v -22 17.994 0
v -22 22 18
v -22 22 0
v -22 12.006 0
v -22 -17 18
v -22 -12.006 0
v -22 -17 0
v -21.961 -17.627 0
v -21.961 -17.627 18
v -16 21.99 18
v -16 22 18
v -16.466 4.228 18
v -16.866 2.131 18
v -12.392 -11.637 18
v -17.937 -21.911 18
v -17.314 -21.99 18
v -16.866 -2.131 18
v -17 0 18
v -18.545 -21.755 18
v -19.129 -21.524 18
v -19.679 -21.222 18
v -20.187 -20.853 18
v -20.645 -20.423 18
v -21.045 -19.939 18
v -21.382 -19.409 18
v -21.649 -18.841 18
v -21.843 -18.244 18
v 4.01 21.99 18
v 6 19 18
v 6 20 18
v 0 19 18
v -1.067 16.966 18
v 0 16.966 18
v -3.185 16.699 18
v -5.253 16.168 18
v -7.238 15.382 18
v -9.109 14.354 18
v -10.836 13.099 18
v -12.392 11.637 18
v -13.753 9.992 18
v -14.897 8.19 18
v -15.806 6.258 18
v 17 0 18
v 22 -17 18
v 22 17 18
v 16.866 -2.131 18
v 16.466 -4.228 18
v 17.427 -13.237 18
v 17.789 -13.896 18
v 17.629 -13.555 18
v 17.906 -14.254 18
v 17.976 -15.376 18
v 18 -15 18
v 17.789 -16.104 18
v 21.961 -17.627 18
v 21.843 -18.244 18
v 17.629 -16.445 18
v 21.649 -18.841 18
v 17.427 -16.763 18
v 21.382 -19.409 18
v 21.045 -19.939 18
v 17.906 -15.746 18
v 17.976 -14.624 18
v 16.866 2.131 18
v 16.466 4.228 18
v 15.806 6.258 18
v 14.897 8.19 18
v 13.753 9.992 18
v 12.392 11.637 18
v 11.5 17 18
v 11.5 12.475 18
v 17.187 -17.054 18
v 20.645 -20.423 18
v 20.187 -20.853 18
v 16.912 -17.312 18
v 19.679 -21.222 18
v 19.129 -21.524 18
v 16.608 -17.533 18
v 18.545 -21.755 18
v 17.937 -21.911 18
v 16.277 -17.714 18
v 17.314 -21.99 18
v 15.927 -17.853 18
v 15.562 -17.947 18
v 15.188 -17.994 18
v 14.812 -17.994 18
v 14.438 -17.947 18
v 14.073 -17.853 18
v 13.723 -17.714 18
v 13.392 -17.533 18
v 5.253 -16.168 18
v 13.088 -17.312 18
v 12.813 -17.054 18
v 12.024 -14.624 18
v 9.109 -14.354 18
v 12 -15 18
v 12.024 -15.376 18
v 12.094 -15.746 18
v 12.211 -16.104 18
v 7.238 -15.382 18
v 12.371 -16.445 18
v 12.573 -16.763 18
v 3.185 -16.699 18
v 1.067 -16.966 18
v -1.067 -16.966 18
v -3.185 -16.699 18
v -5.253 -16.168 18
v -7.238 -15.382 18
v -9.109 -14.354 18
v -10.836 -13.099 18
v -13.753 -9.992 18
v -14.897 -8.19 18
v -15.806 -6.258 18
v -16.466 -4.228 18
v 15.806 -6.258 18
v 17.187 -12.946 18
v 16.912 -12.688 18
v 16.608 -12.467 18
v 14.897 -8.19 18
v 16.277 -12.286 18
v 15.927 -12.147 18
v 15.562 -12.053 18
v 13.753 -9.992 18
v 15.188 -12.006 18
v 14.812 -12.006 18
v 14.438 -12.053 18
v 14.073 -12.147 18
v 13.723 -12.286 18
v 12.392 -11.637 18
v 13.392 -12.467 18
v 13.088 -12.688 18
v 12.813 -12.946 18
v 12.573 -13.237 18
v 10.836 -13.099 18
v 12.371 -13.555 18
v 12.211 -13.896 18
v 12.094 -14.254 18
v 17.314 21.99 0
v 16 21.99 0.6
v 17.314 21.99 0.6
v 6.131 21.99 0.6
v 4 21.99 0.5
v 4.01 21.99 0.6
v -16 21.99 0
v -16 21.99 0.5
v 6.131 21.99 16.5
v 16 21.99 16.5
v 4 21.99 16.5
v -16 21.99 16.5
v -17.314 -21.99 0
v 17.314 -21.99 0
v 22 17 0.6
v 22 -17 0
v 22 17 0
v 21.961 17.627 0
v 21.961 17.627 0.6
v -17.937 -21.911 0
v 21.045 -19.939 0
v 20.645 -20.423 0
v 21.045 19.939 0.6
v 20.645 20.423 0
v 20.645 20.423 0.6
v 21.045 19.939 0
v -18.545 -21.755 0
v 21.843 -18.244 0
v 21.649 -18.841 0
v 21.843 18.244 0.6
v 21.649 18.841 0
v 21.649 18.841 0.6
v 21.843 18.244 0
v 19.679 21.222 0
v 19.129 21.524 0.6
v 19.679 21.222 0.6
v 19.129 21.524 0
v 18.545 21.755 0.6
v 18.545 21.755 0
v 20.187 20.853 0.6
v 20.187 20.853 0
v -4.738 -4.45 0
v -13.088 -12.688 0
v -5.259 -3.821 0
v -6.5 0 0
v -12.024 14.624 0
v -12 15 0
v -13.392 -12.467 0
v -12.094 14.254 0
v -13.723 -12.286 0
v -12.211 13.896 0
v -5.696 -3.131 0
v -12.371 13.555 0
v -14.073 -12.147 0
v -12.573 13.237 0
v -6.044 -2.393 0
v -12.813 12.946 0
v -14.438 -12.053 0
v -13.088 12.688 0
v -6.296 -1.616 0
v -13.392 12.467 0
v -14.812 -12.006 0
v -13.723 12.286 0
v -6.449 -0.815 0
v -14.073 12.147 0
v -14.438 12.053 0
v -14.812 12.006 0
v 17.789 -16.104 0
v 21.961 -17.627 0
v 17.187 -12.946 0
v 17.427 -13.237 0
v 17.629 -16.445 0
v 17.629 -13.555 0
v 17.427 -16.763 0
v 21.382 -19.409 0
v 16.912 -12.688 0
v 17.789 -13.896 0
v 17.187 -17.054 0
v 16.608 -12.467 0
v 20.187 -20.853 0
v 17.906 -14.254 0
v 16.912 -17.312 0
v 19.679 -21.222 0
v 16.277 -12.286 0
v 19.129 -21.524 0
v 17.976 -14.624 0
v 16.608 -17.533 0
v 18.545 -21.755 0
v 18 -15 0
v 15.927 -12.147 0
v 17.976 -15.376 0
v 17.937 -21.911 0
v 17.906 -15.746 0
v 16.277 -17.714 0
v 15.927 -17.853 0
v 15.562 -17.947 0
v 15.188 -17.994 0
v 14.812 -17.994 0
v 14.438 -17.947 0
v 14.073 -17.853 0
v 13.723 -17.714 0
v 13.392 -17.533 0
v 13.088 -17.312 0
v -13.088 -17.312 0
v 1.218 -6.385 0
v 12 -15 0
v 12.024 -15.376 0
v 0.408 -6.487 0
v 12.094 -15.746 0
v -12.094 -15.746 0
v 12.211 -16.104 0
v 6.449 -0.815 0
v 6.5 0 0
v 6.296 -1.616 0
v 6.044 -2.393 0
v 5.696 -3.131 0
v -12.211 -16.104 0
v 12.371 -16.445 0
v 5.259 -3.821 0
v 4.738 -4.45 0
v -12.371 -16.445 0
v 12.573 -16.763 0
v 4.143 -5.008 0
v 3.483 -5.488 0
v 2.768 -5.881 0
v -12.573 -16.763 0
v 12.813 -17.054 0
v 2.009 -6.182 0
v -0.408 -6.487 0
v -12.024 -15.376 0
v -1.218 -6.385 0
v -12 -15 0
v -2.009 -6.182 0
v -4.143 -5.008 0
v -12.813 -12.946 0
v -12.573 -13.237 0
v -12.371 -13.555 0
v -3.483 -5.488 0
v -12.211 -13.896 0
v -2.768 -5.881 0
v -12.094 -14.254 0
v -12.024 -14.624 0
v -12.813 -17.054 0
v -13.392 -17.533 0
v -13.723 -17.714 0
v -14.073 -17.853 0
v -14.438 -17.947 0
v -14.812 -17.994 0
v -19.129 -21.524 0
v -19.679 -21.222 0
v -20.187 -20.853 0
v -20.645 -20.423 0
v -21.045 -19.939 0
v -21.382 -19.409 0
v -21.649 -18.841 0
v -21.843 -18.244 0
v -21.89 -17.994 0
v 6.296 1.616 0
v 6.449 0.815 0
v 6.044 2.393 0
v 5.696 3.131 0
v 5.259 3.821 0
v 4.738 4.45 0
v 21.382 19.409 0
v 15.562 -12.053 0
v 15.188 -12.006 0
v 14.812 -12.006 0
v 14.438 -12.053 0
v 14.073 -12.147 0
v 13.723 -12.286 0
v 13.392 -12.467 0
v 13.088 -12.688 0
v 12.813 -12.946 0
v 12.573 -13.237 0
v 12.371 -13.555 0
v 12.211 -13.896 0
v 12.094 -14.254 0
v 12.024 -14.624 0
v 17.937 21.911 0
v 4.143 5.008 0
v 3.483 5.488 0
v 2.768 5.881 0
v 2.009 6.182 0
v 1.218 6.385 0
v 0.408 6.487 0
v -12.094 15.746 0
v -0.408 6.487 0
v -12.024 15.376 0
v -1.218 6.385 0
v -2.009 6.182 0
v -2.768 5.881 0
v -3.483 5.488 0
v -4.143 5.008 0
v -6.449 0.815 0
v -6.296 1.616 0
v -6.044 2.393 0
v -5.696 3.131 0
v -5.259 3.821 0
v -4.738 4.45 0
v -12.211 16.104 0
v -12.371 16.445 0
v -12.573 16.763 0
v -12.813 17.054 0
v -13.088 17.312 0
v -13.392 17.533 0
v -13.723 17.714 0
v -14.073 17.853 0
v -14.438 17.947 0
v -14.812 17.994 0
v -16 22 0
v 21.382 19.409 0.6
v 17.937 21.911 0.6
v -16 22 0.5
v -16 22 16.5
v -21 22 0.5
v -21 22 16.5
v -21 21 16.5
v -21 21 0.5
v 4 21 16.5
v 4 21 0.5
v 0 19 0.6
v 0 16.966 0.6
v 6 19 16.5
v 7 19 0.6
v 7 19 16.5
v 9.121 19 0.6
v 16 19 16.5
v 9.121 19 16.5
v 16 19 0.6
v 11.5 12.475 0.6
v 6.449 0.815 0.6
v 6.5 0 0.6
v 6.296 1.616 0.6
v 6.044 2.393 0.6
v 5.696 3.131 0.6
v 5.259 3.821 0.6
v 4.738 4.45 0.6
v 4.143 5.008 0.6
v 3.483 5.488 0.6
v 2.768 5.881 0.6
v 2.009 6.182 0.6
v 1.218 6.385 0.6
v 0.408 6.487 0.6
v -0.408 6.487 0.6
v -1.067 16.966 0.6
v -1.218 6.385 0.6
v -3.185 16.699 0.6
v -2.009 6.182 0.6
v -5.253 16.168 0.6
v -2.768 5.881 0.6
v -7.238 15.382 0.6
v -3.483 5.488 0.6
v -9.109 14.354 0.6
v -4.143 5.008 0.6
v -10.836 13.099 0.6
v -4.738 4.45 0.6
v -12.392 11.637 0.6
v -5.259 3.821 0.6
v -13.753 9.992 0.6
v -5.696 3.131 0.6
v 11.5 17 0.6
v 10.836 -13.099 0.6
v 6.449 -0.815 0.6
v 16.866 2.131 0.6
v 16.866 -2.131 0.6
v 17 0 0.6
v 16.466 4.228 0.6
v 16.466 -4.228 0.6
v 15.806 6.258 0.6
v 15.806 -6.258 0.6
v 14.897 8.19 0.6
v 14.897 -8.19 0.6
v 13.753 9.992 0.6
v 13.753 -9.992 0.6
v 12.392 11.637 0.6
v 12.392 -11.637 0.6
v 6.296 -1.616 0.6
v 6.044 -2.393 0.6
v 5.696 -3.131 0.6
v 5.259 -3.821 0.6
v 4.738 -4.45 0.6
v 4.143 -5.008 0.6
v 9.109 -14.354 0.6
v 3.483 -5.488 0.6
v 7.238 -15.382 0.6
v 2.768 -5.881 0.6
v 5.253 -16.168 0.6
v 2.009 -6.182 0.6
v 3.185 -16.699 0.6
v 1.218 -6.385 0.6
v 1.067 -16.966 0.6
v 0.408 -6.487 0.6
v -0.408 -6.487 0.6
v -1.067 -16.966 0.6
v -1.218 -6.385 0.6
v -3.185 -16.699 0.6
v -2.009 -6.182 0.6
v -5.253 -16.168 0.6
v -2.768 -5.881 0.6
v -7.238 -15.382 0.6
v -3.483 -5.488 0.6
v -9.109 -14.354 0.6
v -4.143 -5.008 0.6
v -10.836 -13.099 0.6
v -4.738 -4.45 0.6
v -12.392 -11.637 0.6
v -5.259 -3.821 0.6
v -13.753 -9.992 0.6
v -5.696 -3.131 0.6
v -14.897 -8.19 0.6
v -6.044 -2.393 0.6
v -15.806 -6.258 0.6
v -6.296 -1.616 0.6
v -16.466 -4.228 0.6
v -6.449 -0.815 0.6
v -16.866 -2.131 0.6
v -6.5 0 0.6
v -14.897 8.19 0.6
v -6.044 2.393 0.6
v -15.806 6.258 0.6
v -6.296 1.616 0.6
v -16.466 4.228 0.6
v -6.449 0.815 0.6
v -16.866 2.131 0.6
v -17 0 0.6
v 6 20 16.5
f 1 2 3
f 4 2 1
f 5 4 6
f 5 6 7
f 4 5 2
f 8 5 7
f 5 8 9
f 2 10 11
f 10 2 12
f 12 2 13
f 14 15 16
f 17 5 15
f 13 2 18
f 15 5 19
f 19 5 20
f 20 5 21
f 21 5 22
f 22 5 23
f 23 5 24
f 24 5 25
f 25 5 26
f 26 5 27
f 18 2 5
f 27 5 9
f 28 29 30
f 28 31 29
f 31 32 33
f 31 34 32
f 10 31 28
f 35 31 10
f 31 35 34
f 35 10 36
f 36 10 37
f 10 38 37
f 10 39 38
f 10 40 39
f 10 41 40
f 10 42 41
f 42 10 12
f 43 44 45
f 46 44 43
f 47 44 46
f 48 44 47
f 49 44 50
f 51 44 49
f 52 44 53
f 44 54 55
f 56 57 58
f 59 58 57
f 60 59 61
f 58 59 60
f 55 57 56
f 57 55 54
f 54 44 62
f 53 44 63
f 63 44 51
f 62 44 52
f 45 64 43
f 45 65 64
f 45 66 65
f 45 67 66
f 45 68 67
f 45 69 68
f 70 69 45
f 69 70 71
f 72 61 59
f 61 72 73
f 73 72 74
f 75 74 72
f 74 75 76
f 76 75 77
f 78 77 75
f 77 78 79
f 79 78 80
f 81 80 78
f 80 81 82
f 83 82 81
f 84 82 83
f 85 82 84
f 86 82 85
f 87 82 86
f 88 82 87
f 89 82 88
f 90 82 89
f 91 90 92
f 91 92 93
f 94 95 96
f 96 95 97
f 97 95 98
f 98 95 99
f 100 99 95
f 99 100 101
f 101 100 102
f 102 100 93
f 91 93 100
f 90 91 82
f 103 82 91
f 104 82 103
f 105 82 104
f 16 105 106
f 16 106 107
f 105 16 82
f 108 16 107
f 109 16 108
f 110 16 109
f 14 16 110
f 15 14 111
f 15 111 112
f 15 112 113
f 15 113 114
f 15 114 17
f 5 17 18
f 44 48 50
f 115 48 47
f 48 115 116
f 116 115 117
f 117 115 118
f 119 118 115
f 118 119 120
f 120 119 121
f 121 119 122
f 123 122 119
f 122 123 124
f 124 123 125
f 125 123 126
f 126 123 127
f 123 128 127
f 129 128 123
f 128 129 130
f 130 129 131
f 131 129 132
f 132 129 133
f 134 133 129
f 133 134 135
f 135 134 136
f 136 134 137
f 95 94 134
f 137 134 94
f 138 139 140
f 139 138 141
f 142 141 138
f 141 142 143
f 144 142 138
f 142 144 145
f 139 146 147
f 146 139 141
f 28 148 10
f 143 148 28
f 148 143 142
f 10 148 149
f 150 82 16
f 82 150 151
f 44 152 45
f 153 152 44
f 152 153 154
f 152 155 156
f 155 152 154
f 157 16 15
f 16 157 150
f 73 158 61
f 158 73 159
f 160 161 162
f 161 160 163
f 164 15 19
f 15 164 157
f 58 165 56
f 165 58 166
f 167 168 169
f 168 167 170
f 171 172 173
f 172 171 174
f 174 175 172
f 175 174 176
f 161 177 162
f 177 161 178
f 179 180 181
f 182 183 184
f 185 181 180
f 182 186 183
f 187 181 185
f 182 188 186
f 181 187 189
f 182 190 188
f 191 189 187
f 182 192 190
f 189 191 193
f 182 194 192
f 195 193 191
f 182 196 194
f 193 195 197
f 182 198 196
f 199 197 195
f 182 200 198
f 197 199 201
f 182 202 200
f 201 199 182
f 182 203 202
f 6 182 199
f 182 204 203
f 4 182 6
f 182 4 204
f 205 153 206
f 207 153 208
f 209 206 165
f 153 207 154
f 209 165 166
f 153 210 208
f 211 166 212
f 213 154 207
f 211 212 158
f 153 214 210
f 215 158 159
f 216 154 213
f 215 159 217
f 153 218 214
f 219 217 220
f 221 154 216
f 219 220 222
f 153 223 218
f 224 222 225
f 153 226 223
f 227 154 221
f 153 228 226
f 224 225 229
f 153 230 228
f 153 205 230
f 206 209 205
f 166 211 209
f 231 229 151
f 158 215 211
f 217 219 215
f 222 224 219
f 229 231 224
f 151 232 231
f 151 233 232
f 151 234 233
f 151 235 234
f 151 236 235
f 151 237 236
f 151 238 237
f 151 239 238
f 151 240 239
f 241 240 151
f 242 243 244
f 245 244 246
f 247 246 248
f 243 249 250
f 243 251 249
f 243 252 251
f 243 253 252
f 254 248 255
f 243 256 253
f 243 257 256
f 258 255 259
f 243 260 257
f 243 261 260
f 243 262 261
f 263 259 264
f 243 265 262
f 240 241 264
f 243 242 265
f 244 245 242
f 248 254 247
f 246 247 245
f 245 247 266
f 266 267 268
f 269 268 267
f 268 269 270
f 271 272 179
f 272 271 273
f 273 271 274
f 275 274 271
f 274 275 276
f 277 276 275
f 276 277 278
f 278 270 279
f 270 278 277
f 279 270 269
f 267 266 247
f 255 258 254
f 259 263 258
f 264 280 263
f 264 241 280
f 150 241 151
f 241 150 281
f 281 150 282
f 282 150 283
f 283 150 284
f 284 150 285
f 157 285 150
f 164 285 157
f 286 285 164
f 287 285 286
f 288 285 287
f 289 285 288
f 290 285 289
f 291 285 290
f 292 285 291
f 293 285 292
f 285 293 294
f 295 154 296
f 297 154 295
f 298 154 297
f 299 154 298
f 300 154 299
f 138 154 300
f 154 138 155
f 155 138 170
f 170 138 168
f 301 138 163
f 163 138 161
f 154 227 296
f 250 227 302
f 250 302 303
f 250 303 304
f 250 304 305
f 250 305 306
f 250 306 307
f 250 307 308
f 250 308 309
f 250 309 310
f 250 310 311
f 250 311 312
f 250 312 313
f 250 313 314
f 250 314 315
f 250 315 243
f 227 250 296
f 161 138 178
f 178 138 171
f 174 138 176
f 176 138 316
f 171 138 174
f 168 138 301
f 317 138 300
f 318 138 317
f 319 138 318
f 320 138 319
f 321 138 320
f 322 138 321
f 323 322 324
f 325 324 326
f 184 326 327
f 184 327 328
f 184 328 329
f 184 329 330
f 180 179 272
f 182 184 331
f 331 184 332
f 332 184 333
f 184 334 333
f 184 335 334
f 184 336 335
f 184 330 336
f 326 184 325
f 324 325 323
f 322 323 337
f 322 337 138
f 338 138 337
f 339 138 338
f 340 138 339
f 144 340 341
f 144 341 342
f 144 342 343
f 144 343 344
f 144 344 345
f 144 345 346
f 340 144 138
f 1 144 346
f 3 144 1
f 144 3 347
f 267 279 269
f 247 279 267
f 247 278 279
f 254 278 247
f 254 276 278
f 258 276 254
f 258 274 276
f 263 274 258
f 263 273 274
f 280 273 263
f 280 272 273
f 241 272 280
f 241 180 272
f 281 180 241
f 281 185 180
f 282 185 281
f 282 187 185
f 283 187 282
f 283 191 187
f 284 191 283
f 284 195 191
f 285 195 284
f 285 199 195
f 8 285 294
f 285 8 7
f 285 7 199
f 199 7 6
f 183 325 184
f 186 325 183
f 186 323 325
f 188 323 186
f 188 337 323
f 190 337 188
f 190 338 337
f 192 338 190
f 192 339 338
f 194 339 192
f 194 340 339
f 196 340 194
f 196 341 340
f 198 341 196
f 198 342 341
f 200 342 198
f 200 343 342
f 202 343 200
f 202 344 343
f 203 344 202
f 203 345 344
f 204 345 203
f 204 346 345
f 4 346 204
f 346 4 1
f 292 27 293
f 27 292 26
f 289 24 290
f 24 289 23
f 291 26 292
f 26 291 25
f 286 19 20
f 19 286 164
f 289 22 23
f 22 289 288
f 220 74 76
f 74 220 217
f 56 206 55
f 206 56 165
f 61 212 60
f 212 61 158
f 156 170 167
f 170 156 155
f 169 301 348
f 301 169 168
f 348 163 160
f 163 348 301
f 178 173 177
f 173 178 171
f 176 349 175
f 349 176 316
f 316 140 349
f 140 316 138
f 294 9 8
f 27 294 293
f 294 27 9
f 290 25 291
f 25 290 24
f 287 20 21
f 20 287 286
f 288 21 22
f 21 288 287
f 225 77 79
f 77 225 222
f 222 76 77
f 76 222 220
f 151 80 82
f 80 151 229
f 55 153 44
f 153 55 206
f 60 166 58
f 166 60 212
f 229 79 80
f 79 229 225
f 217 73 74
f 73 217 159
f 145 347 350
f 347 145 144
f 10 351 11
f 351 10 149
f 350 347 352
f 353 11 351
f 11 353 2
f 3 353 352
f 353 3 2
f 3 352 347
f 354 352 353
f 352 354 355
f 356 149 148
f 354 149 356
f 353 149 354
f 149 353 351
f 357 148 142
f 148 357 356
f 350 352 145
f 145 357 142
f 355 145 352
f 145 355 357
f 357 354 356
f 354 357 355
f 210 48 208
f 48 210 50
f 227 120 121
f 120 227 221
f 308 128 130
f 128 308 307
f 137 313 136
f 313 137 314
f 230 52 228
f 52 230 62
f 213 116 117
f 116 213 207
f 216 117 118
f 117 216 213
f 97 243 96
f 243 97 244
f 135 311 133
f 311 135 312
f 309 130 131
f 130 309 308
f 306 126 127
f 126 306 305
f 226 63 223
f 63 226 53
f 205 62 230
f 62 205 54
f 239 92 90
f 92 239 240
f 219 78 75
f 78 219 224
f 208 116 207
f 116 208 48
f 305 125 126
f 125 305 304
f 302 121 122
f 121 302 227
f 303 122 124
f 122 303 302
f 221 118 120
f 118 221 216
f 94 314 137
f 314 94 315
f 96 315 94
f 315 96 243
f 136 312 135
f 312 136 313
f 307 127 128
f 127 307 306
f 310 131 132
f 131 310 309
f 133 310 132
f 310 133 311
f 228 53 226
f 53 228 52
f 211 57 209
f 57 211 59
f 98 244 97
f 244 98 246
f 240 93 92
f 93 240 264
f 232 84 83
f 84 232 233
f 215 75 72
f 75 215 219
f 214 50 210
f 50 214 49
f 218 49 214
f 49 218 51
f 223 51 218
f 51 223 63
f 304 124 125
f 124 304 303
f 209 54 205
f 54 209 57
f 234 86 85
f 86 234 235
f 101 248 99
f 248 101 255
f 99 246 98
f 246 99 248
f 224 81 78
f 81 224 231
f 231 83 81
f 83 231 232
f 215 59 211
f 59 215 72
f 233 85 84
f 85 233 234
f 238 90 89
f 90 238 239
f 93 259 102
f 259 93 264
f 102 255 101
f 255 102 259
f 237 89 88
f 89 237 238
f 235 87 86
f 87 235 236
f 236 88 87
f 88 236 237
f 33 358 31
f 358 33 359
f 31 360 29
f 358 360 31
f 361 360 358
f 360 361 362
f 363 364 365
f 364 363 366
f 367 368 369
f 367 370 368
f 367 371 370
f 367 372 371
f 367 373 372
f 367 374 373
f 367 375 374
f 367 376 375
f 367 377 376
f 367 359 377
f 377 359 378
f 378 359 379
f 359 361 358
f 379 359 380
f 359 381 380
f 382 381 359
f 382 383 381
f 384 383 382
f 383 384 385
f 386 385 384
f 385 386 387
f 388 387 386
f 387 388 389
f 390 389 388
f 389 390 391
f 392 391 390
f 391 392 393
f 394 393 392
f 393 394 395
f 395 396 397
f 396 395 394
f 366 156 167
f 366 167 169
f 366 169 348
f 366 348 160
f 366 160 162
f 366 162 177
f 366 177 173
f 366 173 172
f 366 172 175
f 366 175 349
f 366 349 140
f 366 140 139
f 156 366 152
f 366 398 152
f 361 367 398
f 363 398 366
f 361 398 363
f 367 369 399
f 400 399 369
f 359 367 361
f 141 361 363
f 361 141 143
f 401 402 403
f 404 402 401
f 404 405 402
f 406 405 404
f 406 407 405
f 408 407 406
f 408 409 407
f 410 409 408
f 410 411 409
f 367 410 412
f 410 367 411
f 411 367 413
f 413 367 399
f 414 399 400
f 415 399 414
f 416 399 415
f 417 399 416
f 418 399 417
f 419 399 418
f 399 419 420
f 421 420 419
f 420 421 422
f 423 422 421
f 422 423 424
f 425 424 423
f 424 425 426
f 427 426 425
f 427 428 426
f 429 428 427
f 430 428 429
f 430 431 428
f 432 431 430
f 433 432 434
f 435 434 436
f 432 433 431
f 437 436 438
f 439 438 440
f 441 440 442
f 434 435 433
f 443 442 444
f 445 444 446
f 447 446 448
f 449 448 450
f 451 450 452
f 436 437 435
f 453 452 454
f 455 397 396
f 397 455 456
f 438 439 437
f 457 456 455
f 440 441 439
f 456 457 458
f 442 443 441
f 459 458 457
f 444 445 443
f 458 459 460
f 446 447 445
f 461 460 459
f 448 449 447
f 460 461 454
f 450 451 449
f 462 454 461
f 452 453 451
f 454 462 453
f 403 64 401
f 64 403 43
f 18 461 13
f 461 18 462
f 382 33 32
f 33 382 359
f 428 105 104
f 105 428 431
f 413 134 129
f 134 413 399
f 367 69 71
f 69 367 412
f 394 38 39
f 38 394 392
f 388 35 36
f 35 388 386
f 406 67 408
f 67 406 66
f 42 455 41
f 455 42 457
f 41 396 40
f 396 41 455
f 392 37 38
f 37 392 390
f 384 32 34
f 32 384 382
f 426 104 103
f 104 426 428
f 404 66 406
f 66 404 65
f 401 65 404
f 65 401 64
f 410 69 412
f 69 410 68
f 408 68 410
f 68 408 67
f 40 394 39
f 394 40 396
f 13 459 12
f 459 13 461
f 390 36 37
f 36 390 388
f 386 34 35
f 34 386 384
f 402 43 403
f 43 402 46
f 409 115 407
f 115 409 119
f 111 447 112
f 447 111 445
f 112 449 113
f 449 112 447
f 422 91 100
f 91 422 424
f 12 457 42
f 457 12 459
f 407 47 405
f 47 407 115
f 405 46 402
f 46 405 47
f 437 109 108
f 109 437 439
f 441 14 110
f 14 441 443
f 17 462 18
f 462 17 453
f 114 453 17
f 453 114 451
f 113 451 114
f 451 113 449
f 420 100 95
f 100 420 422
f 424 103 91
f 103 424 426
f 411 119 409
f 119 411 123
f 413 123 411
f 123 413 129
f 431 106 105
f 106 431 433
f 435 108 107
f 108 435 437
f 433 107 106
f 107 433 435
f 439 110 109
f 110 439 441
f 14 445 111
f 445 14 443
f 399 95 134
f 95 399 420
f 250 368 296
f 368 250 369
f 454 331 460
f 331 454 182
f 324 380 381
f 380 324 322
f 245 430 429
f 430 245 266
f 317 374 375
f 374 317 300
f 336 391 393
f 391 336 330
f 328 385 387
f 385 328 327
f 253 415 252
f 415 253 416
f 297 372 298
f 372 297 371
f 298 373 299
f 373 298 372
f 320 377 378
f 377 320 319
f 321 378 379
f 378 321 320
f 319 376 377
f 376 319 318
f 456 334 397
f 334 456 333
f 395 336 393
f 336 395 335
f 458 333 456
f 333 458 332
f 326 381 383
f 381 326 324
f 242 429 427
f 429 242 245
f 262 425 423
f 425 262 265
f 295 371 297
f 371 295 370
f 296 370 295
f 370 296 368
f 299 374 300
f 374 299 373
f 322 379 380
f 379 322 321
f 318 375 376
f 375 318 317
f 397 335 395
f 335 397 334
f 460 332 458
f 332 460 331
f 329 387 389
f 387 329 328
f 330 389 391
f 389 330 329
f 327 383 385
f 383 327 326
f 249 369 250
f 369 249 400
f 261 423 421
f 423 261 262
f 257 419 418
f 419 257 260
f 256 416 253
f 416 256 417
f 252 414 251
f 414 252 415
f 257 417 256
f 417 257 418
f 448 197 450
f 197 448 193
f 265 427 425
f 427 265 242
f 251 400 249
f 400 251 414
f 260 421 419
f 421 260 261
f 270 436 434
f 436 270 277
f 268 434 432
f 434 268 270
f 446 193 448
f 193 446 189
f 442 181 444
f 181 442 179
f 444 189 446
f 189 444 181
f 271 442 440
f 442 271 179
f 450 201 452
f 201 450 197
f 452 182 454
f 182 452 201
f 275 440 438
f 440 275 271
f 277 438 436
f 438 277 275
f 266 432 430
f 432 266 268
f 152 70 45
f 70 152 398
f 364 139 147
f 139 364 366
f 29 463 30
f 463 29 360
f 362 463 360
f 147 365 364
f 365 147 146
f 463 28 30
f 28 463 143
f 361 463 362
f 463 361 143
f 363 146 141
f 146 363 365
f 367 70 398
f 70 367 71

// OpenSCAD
$fn = 50;


difference() {
	union() {
		hull() {
			translate(v = [-17.0000000000, 17.0000000000, 0]) {
				cylinder(h = 18, r = 5);
			}
			translate(v = [17.0000000000, 17.0000000000, 0]) {
				cylinder(h = 18, r = 5);
			}
			translate(v = [-17.0000000000, -17.0000000000, 0]) {
				cylinder(h = 18, r = 5);
			}
			translate(v = [17.0000000000, -17.0000000000, 0]) {
				cylinder(h = 18, r = 5);
			}
		}
		translate(v = [-22.0000000000, 16.0000000000, 0]) {
			cube(size = [6, 6, 18]);
		}
	}
	union() {
		translate(v = [-22.5000000000, -15.0000000000, -250.0000000000]) {
			rotate(a = [0, 0, 0]) {
				difference() {
					union() {
						hull() {
							translate(v = [7.5000000000, 0, 0]) {
								cylinder(h = 250, r = 3.0000000000, r1 = 3.0000000000, r2 = 3.0000000000);
							}
							translate(v = [-7.5000000000, 0, 0]) {
								cylinder(h = 250, r = 3.0000000000, r1 = 3.0000000000, r2 = 3.0000000000);
							}
						}
					}
					union();
				}
			}
		}
		translate(v = [-22.5000000000, 15.0000000000, -250.0000000000]) {
			rotate(a = [0, 0, 0]) {
				difference() {
					union() {
						hull() {
							translate(v = [7.5000000000, 0, 0]) {
								cylinder(h = 250, r = 3.0000000000, r1 = 3.0000000000, r2 = 3.0000000000);
							}
							translate(v = [-7.5000000000, 0, 0]) {
								cylinder(h = 250, r = 3.0000000000, r1 = 3.0000000000, r2 = 3.0000000000);
							}
						}
					}
					union();
				}
			}
		}
		translate(v = [-21.0000000000, 21.0000000000, 0.5000000000]) {
			cube(size = [25, 1, 16]);
		}
		translate(v = [15.0000000000, -15.0000000000, -50.0000000000]) {
			cylinder(h = 100, r = 3.0000000000);
		}
		translate(v = [0.0000000000, 11.0000000000, 0.6000000000]) {
			cube(size = [11, 8, 20.4000000000]);
		}
		translate(v = [0, 0, 0.6000000000]) {
			cylinder(h = 20.4000000000, r = 17.0000000000);
		}
		translate(v = [0, 0, -9.0000000000]) {
			cylinder(h = 18, r = 6.5000000000);
		}
		translate(v = [0.0000000000, 17.0000000000, 0.6000000000]) {
			cube(size = [22.0000000000, 2, 20.4000000000]);
		}
		translate(v = [16.0000000000, 17.0000000000, 0.6000000000]) {
			cube(size = [6, 5, 20.4000000000]);
		}
		translate(v = [6.0000000000, 17.0000000000, 16.5000000000]) {
			cube(size = [16, 5, 1.5000000000]);
		}
		translate(v = [3.2500000000, 22.7500000000, 0.6000000000]) {
			rotate(a = [0, 0, -45]) {
				cube(size = [7.5000000000, 1.5000000000, 20.4000000000]);
			}
		}
		translate(v = [2.5000000000, 12.0000000000, 0.6000000000]) {
			cube(size = [9.0000000000, 5, 17.4000000000]);
		}
	}
}
